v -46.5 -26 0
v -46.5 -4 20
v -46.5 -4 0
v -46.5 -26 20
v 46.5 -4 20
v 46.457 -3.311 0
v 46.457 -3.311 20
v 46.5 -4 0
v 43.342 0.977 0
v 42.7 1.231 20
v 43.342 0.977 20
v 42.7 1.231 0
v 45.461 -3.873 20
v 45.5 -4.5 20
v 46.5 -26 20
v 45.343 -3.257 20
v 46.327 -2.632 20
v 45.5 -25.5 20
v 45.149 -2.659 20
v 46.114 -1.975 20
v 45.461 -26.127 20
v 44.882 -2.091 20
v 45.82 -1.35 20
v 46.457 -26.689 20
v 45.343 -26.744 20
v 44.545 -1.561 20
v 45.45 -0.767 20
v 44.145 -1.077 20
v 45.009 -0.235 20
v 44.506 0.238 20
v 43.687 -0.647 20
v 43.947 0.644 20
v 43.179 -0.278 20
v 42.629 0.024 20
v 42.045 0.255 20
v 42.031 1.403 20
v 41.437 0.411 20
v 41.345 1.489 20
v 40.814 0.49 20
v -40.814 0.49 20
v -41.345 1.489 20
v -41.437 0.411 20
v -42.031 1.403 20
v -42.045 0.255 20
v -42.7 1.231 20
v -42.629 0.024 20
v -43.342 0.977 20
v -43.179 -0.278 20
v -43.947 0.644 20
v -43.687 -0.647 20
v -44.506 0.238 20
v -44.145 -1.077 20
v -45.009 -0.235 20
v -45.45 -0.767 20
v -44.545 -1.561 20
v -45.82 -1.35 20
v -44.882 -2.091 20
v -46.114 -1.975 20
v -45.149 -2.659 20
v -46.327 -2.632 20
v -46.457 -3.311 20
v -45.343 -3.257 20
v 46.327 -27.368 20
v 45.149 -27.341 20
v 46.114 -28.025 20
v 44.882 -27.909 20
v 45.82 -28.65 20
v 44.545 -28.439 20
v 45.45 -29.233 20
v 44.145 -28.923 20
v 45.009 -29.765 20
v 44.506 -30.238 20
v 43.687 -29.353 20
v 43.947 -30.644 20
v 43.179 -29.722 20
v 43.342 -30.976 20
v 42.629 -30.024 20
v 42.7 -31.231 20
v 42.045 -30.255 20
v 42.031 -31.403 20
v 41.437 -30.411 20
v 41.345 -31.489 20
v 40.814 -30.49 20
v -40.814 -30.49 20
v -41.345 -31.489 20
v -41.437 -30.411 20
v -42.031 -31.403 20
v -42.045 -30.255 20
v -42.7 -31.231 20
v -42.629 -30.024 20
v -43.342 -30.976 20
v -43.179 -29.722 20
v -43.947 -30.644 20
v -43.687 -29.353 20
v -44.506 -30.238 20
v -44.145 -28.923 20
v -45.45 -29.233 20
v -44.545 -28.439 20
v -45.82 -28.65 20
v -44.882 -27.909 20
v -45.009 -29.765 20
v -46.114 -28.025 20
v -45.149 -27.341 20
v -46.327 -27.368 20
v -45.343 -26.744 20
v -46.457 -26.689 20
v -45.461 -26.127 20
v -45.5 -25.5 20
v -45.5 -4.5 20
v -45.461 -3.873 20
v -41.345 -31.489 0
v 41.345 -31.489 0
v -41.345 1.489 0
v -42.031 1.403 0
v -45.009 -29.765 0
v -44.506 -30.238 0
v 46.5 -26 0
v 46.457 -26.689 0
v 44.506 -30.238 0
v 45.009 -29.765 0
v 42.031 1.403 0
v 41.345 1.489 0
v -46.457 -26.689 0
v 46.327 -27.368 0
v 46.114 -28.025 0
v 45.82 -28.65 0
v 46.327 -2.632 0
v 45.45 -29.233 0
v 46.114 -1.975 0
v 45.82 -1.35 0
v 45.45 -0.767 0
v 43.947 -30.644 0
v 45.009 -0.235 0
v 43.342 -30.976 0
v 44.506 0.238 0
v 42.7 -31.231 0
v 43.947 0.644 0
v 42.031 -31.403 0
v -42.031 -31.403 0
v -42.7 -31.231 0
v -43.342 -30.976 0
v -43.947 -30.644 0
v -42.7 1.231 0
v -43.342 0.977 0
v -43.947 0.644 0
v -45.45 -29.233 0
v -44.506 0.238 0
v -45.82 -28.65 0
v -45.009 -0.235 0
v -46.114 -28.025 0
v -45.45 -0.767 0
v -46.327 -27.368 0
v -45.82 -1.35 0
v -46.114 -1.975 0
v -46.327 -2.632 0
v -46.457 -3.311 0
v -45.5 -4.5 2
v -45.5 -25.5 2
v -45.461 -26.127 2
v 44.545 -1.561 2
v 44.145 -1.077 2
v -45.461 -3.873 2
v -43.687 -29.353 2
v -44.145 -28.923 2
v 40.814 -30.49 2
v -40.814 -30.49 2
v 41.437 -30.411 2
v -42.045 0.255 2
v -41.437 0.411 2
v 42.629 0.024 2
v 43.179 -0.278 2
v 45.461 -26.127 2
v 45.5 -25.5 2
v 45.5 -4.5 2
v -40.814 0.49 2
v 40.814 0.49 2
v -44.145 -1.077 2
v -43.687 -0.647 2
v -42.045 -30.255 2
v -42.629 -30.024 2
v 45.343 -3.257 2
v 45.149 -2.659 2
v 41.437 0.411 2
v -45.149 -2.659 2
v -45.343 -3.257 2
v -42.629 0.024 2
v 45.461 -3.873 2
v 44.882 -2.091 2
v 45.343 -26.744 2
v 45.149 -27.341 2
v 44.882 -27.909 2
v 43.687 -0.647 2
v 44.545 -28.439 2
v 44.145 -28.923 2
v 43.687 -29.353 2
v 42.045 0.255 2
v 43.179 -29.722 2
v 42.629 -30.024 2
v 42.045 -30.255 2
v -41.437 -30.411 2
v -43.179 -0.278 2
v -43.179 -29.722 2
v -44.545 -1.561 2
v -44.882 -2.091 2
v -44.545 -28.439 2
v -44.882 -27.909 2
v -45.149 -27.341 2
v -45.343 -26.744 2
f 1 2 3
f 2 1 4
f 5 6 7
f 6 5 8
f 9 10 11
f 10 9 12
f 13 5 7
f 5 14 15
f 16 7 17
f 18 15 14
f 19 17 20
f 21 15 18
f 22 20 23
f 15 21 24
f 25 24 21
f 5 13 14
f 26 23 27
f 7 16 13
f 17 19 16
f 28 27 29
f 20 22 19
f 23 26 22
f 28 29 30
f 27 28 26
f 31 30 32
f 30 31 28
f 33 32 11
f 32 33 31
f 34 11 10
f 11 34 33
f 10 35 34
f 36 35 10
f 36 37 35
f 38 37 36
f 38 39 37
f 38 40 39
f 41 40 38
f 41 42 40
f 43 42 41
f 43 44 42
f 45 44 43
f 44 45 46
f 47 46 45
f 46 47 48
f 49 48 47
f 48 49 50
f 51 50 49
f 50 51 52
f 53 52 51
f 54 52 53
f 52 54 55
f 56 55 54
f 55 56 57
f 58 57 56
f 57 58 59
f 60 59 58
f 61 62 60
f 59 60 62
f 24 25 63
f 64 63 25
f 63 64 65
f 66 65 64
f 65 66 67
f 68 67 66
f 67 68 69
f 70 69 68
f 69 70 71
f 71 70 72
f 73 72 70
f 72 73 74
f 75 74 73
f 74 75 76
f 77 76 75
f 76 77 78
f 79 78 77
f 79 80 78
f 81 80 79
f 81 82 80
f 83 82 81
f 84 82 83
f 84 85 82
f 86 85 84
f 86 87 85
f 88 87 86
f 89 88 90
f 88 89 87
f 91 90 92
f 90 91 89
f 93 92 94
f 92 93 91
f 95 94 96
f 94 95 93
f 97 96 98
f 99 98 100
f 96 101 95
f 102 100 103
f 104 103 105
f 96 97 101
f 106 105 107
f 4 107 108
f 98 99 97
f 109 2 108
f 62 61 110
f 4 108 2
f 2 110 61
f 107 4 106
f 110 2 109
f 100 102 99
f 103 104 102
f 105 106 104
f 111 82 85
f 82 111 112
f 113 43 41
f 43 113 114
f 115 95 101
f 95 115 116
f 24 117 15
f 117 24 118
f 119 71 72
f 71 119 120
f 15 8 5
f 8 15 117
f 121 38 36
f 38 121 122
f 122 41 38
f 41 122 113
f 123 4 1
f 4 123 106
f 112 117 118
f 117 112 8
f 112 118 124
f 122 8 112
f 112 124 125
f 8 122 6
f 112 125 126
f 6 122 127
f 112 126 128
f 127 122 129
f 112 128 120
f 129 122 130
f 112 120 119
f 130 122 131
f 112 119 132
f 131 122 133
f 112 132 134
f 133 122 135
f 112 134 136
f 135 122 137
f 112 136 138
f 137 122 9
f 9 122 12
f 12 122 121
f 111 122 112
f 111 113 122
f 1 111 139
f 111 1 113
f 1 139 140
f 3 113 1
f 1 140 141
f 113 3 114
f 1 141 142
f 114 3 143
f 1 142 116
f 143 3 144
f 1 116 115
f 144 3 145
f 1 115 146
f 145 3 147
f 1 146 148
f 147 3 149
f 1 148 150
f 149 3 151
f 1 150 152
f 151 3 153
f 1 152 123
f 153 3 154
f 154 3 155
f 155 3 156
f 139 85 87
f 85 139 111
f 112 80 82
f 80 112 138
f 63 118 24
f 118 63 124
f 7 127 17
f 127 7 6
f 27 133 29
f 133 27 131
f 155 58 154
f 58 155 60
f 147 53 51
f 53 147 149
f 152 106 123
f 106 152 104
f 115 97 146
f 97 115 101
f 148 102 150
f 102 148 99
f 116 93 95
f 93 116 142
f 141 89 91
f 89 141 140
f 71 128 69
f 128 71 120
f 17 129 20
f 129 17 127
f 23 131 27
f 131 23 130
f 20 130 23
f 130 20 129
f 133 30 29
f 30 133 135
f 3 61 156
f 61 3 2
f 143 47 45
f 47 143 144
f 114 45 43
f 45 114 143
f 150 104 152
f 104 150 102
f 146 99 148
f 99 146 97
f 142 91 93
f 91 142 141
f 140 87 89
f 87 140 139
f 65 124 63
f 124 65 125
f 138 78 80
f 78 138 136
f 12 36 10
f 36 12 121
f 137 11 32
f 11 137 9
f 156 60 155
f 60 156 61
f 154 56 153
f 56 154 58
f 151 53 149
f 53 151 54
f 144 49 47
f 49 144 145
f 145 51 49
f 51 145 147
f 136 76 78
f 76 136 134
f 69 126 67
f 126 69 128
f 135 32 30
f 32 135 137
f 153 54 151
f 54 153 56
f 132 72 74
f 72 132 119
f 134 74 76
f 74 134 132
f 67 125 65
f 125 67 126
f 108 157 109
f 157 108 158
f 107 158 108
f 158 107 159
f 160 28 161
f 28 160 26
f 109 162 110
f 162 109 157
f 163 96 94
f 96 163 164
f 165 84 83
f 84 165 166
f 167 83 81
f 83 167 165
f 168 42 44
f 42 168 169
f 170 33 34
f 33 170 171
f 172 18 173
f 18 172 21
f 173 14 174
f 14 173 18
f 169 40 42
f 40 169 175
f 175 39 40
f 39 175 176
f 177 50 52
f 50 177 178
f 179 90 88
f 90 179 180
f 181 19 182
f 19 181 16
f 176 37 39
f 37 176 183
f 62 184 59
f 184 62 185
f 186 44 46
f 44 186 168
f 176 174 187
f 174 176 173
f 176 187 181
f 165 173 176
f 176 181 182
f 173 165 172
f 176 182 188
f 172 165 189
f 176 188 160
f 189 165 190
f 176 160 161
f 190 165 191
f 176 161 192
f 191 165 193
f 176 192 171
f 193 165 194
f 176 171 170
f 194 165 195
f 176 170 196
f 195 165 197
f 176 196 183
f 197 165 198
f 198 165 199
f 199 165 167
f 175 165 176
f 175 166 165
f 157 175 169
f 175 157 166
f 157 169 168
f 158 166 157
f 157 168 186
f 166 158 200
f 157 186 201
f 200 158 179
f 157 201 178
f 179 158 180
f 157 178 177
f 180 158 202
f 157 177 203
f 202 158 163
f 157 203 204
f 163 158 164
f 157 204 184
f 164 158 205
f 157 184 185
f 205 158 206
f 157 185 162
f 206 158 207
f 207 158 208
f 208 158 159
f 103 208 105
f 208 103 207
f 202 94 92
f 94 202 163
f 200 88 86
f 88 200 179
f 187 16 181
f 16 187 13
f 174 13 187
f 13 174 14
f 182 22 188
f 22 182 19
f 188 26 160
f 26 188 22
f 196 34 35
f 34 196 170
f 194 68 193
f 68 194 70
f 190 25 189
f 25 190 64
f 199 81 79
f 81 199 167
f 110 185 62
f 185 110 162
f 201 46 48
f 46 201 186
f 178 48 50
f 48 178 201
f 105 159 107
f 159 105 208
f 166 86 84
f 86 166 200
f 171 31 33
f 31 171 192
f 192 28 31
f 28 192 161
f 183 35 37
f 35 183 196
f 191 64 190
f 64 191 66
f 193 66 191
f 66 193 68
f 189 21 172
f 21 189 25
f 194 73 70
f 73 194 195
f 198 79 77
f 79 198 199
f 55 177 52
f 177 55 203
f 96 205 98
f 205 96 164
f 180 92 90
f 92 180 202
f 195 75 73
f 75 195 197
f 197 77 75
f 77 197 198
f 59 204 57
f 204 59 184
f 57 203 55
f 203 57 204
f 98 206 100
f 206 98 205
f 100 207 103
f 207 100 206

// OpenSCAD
$fn = 50;


difference() {
	union() {
		translate(v = [0, -15.0000000000, 0]) {
			hull() {
				translate(v = [-41.0000000000, 11.0000000000, 0]) {
					cylinder(h = 20, r = 5.5000000000);
				}
				translate(v = [41.0000000000, 11.0000000000, 0]) {
					cylinder(h = 20, r = 5.5000000000);
				}
				translate(v = [-41.0000000000, -11.0000000000, 0]) {
					cylinder(h = 20, r = 5.5000000000);
				}
				translate(v = [41.0000000000, -11.0000000000, 0]) {
					cylinder(h = 20, r = 5.5000000000);
				}
			}
		}
	}
	union() {
		translate(v = [0, -15.0000000000, 2]) {
			hull() {
				translate(v = [-40.5000000000, 10.5000000000, 0]) {
					cylinder(h = 40, r = 5);
				}
				translate(v = [40.5000000000, 10.5000000000, 0]) {
					cylinder(h = 40, r = 5);
				}
				translate(v = [-40.5000000000, -10.5000000000, 0]) {
					cylinder(h = 40, r = 5);
				}
				translate(v = [40.5000000000, -10.5000000000, 0]) {
					cylinder(h = 40, r = 5);
				}
			}
		}
	}
}
